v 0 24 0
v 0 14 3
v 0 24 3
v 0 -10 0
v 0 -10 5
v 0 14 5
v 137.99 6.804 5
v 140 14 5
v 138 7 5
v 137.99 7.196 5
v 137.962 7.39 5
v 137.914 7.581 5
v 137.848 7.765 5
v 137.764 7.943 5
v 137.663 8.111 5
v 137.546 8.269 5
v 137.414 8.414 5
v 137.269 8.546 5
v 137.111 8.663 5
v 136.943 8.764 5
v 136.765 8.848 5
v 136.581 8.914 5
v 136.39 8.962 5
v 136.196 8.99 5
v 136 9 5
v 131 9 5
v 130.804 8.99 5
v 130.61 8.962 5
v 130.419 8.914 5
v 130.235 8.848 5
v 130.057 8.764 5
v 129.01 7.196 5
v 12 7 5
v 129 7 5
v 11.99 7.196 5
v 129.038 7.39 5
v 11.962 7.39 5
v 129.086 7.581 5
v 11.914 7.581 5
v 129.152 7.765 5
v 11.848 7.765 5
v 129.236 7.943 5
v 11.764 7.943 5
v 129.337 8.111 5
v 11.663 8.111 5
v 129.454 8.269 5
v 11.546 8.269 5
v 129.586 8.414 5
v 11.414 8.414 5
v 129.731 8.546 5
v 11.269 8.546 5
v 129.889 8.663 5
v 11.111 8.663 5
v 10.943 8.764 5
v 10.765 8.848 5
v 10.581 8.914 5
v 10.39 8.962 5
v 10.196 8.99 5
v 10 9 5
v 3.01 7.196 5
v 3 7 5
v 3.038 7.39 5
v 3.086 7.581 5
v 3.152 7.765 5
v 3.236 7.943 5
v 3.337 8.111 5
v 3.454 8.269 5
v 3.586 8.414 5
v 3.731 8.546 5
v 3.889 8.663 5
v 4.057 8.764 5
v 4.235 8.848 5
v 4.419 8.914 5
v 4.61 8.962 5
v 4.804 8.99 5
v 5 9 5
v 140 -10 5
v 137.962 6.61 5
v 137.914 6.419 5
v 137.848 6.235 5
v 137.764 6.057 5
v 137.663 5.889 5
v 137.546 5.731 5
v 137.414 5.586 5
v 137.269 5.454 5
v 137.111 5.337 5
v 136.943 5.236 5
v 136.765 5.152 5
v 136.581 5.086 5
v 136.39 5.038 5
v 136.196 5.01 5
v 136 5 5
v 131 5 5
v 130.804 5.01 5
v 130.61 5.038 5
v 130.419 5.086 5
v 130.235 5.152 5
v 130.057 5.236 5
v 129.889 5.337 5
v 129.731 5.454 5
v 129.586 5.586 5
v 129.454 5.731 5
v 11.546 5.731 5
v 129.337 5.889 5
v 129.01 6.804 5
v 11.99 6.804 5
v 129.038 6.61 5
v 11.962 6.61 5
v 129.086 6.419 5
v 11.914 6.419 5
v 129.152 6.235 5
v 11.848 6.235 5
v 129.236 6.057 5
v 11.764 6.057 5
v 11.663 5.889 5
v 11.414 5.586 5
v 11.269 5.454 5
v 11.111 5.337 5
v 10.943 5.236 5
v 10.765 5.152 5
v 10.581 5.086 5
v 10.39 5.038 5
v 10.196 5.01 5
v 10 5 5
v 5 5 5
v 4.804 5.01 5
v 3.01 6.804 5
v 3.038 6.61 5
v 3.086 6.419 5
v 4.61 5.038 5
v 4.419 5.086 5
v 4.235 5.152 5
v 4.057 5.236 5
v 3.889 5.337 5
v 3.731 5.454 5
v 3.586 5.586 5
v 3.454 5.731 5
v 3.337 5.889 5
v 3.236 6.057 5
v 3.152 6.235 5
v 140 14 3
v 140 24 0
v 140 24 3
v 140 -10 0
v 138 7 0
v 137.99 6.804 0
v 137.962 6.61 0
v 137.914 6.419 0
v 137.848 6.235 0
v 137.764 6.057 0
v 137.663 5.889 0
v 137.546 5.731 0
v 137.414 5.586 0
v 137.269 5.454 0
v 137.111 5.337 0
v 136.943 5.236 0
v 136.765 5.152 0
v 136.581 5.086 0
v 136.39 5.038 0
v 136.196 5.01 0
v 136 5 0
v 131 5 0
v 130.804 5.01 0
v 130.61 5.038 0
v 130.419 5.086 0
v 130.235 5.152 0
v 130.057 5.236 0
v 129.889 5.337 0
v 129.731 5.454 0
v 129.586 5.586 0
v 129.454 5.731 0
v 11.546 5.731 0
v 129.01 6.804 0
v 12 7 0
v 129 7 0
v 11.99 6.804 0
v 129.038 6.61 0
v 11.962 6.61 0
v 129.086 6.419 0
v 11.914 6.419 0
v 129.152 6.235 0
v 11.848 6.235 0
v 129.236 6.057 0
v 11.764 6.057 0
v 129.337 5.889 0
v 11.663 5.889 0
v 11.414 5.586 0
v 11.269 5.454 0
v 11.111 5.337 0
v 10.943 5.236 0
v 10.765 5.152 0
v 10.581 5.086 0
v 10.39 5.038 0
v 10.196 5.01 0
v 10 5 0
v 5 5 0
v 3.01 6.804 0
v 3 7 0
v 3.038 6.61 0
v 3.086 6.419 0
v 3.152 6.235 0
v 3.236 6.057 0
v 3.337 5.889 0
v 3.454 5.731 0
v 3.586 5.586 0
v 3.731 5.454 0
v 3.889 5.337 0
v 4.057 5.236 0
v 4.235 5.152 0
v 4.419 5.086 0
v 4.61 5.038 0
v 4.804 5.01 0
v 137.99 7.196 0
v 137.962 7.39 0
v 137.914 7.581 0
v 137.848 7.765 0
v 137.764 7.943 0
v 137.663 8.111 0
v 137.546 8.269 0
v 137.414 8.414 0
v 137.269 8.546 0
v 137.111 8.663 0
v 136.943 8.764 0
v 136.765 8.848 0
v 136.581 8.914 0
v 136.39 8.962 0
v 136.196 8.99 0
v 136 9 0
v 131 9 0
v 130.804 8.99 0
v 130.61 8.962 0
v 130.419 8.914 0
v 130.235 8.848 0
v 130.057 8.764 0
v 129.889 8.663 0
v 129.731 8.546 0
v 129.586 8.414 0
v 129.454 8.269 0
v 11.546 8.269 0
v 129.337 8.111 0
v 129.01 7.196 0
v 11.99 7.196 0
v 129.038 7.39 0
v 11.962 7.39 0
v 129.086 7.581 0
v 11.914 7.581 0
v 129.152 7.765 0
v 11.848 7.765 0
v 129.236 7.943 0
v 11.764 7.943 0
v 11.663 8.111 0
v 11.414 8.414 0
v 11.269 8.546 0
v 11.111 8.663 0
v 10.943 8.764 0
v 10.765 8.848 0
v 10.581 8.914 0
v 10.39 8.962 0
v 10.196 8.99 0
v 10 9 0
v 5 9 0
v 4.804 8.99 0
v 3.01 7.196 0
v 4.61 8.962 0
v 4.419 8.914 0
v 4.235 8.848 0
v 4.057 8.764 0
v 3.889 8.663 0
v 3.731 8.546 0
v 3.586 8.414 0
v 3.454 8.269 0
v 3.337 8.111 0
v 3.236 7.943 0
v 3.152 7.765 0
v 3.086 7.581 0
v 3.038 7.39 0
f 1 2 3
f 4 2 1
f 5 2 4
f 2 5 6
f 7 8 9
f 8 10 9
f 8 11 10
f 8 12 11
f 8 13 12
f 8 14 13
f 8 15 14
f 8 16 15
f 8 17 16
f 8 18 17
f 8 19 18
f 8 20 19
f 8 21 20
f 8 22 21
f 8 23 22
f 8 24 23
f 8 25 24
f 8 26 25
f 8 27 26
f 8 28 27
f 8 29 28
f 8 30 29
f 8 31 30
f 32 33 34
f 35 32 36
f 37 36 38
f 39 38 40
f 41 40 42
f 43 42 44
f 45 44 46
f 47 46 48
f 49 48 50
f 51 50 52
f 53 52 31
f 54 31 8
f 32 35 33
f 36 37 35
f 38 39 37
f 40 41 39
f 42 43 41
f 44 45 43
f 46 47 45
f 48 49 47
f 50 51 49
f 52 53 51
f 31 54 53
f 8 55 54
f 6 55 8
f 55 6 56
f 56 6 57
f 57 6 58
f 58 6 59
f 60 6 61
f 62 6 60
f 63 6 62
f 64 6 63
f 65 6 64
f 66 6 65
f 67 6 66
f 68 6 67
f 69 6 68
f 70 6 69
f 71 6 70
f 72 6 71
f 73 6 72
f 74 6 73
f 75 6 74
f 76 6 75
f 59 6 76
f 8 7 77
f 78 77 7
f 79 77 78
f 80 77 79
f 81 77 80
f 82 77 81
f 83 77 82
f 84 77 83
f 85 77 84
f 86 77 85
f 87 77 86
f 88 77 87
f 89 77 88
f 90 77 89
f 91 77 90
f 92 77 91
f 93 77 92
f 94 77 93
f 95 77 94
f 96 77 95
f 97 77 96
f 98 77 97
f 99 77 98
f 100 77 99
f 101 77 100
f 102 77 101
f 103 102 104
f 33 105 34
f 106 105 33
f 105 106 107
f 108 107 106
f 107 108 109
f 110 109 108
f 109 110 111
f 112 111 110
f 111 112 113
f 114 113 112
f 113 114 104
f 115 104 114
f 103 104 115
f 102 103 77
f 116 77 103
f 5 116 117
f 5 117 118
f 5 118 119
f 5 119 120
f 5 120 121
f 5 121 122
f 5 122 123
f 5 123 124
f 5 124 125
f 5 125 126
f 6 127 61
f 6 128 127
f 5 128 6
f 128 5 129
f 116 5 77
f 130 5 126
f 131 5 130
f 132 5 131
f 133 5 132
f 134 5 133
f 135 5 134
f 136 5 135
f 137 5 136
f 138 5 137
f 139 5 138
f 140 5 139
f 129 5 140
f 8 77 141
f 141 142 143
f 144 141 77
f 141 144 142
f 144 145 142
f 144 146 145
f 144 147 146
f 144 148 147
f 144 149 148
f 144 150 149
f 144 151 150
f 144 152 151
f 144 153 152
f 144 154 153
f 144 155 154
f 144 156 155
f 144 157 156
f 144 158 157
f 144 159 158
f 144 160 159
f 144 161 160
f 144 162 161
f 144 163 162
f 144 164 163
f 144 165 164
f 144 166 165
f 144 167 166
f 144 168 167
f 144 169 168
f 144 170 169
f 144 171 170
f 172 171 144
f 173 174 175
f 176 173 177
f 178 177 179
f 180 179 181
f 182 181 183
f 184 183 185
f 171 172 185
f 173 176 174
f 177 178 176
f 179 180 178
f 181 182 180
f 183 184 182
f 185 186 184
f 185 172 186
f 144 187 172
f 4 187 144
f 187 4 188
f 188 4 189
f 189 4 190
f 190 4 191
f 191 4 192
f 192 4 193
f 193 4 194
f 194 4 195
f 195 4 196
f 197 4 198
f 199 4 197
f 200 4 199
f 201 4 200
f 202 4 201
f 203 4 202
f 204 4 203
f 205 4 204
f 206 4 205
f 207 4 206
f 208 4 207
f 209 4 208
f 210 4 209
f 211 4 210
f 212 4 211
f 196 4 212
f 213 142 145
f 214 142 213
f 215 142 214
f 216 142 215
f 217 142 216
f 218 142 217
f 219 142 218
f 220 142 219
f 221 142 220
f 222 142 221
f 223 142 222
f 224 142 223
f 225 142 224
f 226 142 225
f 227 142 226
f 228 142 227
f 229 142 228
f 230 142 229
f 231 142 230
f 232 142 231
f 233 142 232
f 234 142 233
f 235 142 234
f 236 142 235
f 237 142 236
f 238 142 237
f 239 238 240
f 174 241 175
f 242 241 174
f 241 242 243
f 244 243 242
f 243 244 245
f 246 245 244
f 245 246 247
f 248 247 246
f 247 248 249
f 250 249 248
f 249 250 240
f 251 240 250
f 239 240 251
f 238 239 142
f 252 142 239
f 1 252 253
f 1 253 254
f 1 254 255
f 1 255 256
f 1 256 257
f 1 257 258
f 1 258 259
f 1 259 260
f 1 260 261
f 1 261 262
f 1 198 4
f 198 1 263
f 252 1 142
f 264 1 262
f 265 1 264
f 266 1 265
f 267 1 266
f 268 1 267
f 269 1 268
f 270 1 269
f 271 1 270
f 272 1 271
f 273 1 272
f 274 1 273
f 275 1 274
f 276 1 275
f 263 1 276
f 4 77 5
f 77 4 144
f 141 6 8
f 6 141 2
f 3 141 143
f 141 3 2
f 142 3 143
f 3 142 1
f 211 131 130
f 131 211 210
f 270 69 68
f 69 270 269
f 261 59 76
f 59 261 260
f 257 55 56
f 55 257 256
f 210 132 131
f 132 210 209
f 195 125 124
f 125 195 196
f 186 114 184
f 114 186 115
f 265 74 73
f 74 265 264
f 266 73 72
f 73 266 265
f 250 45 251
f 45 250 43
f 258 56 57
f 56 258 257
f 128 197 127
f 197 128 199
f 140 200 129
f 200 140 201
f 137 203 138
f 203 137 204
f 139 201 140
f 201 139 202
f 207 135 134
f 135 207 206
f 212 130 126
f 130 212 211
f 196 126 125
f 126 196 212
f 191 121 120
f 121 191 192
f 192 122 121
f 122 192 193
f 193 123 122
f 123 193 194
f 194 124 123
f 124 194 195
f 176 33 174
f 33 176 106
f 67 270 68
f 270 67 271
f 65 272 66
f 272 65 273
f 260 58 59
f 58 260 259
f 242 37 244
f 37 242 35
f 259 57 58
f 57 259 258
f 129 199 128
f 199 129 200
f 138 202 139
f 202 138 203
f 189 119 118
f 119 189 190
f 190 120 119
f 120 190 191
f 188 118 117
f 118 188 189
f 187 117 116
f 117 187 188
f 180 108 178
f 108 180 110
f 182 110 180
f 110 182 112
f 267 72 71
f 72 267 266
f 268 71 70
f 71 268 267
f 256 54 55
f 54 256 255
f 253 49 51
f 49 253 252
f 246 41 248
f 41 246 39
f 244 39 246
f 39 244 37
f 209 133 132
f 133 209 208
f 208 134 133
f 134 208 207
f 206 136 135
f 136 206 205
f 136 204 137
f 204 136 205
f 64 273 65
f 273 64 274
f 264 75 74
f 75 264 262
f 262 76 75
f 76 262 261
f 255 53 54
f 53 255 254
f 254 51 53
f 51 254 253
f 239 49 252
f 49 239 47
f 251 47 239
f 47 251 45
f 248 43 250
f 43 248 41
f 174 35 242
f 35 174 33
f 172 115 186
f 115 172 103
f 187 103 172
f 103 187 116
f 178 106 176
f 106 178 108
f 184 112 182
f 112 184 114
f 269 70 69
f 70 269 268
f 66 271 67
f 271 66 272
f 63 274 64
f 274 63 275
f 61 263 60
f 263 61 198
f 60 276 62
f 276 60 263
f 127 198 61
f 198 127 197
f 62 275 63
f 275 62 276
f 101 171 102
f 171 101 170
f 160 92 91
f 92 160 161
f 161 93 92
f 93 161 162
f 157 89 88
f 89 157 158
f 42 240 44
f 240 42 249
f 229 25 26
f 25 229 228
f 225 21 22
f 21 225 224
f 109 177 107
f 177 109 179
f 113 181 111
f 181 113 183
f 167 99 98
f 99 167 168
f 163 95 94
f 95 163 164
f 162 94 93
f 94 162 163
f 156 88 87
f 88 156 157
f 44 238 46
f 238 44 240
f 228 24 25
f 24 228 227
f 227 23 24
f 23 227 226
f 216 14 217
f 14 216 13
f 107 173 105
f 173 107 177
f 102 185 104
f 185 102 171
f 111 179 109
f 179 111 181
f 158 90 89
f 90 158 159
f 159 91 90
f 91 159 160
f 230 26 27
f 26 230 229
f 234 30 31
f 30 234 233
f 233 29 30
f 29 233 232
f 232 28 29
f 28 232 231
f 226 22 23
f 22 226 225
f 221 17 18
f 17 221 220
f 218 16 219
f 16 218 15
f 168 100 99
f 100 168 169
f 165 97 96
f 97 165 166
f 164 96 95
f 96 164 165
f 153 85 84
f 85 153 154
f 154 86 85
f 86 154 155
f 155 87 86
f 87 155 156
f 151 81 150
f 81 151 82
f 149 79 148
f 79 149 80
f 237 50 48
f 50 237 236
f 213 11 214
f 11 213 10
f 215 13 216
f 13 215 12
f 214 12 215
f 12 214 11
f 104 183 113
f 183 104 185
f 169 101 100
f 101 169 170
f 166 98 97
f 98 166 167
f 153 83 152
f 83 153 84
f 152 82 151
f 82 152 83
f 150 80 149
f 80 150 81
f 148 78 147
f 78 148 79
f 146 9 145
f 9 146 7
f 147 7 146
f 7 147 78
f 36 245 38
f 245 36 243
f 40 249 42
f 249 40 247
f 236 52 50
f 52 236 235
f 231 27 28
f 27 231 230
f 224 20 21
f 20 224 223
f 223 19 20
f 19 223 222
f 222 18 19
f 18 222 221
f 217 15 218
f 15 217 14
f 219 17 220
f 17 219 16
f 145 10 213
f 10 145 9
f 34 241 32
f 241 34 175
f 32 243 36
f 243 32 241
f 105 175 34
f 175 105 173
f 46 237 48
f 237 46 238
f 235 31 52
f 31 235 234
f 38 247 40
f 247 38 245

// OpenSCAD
// iMac G3 PCIe Spacer for underneath the PCIe riser cable female end
// Ryan Crosby 2020
//
// All units are in mm

//
// Constants
//

// Pretty round things with bigger numbers
// 16 = Good for draft
// 64 = Good for export
$fn=64;

// Floating point errors can cause difference operations to leave really thin faces where there should be none.
// Add this to subtracted object dimensions where appropriate to prevent this.
SEM = 0.0000001;

//
// Imports
//

//
// Variables
//

screw_spacing = 125;
screw_offset = [5, 0, 0];

spacing_height = 5;
spacing_width = 14;
spacing_length = 140;

spacing_offset = [0, -10, 0];
spacing_dimensions = [spacing_length, spacing_width + 10, spacing_height];

side_box_dimensions = [spacing_length, spacing_width + 10, spacing_height - 2];

screw_a_pos = [0, spacing_width / 2, 0] + screw_offset;
screw_b_pos = [screw_spacing, spacing_width / 2, 0] + screw_offset;

//
// Modules
//

module screw_hole(h = 10) {
    cylinder(d = 3 + 1, h = h);
}

module screw_hole_wide(h = 10) {
    hull() {
        screw_hole(h);

        translate([5, 0, 0])
        screw_hole(h);
    }
}

module mainbox() {
    cube(spacing_dimensions);
}

module side_box() {
    cube(side_box_dimensions);
}

module spacer() {
    difference() {
        union() {
            translate(spacing_offset)
            mainbox();

            side_box();
        }

        #translate([0, 0, -1])
        union() {
            translate(screw_a_pos)
            screw_hole_wide();

            translate(screw_b_pos - [-1, 0, 0])
            screw_hole_wide();
        }
    }
}

spacer();
